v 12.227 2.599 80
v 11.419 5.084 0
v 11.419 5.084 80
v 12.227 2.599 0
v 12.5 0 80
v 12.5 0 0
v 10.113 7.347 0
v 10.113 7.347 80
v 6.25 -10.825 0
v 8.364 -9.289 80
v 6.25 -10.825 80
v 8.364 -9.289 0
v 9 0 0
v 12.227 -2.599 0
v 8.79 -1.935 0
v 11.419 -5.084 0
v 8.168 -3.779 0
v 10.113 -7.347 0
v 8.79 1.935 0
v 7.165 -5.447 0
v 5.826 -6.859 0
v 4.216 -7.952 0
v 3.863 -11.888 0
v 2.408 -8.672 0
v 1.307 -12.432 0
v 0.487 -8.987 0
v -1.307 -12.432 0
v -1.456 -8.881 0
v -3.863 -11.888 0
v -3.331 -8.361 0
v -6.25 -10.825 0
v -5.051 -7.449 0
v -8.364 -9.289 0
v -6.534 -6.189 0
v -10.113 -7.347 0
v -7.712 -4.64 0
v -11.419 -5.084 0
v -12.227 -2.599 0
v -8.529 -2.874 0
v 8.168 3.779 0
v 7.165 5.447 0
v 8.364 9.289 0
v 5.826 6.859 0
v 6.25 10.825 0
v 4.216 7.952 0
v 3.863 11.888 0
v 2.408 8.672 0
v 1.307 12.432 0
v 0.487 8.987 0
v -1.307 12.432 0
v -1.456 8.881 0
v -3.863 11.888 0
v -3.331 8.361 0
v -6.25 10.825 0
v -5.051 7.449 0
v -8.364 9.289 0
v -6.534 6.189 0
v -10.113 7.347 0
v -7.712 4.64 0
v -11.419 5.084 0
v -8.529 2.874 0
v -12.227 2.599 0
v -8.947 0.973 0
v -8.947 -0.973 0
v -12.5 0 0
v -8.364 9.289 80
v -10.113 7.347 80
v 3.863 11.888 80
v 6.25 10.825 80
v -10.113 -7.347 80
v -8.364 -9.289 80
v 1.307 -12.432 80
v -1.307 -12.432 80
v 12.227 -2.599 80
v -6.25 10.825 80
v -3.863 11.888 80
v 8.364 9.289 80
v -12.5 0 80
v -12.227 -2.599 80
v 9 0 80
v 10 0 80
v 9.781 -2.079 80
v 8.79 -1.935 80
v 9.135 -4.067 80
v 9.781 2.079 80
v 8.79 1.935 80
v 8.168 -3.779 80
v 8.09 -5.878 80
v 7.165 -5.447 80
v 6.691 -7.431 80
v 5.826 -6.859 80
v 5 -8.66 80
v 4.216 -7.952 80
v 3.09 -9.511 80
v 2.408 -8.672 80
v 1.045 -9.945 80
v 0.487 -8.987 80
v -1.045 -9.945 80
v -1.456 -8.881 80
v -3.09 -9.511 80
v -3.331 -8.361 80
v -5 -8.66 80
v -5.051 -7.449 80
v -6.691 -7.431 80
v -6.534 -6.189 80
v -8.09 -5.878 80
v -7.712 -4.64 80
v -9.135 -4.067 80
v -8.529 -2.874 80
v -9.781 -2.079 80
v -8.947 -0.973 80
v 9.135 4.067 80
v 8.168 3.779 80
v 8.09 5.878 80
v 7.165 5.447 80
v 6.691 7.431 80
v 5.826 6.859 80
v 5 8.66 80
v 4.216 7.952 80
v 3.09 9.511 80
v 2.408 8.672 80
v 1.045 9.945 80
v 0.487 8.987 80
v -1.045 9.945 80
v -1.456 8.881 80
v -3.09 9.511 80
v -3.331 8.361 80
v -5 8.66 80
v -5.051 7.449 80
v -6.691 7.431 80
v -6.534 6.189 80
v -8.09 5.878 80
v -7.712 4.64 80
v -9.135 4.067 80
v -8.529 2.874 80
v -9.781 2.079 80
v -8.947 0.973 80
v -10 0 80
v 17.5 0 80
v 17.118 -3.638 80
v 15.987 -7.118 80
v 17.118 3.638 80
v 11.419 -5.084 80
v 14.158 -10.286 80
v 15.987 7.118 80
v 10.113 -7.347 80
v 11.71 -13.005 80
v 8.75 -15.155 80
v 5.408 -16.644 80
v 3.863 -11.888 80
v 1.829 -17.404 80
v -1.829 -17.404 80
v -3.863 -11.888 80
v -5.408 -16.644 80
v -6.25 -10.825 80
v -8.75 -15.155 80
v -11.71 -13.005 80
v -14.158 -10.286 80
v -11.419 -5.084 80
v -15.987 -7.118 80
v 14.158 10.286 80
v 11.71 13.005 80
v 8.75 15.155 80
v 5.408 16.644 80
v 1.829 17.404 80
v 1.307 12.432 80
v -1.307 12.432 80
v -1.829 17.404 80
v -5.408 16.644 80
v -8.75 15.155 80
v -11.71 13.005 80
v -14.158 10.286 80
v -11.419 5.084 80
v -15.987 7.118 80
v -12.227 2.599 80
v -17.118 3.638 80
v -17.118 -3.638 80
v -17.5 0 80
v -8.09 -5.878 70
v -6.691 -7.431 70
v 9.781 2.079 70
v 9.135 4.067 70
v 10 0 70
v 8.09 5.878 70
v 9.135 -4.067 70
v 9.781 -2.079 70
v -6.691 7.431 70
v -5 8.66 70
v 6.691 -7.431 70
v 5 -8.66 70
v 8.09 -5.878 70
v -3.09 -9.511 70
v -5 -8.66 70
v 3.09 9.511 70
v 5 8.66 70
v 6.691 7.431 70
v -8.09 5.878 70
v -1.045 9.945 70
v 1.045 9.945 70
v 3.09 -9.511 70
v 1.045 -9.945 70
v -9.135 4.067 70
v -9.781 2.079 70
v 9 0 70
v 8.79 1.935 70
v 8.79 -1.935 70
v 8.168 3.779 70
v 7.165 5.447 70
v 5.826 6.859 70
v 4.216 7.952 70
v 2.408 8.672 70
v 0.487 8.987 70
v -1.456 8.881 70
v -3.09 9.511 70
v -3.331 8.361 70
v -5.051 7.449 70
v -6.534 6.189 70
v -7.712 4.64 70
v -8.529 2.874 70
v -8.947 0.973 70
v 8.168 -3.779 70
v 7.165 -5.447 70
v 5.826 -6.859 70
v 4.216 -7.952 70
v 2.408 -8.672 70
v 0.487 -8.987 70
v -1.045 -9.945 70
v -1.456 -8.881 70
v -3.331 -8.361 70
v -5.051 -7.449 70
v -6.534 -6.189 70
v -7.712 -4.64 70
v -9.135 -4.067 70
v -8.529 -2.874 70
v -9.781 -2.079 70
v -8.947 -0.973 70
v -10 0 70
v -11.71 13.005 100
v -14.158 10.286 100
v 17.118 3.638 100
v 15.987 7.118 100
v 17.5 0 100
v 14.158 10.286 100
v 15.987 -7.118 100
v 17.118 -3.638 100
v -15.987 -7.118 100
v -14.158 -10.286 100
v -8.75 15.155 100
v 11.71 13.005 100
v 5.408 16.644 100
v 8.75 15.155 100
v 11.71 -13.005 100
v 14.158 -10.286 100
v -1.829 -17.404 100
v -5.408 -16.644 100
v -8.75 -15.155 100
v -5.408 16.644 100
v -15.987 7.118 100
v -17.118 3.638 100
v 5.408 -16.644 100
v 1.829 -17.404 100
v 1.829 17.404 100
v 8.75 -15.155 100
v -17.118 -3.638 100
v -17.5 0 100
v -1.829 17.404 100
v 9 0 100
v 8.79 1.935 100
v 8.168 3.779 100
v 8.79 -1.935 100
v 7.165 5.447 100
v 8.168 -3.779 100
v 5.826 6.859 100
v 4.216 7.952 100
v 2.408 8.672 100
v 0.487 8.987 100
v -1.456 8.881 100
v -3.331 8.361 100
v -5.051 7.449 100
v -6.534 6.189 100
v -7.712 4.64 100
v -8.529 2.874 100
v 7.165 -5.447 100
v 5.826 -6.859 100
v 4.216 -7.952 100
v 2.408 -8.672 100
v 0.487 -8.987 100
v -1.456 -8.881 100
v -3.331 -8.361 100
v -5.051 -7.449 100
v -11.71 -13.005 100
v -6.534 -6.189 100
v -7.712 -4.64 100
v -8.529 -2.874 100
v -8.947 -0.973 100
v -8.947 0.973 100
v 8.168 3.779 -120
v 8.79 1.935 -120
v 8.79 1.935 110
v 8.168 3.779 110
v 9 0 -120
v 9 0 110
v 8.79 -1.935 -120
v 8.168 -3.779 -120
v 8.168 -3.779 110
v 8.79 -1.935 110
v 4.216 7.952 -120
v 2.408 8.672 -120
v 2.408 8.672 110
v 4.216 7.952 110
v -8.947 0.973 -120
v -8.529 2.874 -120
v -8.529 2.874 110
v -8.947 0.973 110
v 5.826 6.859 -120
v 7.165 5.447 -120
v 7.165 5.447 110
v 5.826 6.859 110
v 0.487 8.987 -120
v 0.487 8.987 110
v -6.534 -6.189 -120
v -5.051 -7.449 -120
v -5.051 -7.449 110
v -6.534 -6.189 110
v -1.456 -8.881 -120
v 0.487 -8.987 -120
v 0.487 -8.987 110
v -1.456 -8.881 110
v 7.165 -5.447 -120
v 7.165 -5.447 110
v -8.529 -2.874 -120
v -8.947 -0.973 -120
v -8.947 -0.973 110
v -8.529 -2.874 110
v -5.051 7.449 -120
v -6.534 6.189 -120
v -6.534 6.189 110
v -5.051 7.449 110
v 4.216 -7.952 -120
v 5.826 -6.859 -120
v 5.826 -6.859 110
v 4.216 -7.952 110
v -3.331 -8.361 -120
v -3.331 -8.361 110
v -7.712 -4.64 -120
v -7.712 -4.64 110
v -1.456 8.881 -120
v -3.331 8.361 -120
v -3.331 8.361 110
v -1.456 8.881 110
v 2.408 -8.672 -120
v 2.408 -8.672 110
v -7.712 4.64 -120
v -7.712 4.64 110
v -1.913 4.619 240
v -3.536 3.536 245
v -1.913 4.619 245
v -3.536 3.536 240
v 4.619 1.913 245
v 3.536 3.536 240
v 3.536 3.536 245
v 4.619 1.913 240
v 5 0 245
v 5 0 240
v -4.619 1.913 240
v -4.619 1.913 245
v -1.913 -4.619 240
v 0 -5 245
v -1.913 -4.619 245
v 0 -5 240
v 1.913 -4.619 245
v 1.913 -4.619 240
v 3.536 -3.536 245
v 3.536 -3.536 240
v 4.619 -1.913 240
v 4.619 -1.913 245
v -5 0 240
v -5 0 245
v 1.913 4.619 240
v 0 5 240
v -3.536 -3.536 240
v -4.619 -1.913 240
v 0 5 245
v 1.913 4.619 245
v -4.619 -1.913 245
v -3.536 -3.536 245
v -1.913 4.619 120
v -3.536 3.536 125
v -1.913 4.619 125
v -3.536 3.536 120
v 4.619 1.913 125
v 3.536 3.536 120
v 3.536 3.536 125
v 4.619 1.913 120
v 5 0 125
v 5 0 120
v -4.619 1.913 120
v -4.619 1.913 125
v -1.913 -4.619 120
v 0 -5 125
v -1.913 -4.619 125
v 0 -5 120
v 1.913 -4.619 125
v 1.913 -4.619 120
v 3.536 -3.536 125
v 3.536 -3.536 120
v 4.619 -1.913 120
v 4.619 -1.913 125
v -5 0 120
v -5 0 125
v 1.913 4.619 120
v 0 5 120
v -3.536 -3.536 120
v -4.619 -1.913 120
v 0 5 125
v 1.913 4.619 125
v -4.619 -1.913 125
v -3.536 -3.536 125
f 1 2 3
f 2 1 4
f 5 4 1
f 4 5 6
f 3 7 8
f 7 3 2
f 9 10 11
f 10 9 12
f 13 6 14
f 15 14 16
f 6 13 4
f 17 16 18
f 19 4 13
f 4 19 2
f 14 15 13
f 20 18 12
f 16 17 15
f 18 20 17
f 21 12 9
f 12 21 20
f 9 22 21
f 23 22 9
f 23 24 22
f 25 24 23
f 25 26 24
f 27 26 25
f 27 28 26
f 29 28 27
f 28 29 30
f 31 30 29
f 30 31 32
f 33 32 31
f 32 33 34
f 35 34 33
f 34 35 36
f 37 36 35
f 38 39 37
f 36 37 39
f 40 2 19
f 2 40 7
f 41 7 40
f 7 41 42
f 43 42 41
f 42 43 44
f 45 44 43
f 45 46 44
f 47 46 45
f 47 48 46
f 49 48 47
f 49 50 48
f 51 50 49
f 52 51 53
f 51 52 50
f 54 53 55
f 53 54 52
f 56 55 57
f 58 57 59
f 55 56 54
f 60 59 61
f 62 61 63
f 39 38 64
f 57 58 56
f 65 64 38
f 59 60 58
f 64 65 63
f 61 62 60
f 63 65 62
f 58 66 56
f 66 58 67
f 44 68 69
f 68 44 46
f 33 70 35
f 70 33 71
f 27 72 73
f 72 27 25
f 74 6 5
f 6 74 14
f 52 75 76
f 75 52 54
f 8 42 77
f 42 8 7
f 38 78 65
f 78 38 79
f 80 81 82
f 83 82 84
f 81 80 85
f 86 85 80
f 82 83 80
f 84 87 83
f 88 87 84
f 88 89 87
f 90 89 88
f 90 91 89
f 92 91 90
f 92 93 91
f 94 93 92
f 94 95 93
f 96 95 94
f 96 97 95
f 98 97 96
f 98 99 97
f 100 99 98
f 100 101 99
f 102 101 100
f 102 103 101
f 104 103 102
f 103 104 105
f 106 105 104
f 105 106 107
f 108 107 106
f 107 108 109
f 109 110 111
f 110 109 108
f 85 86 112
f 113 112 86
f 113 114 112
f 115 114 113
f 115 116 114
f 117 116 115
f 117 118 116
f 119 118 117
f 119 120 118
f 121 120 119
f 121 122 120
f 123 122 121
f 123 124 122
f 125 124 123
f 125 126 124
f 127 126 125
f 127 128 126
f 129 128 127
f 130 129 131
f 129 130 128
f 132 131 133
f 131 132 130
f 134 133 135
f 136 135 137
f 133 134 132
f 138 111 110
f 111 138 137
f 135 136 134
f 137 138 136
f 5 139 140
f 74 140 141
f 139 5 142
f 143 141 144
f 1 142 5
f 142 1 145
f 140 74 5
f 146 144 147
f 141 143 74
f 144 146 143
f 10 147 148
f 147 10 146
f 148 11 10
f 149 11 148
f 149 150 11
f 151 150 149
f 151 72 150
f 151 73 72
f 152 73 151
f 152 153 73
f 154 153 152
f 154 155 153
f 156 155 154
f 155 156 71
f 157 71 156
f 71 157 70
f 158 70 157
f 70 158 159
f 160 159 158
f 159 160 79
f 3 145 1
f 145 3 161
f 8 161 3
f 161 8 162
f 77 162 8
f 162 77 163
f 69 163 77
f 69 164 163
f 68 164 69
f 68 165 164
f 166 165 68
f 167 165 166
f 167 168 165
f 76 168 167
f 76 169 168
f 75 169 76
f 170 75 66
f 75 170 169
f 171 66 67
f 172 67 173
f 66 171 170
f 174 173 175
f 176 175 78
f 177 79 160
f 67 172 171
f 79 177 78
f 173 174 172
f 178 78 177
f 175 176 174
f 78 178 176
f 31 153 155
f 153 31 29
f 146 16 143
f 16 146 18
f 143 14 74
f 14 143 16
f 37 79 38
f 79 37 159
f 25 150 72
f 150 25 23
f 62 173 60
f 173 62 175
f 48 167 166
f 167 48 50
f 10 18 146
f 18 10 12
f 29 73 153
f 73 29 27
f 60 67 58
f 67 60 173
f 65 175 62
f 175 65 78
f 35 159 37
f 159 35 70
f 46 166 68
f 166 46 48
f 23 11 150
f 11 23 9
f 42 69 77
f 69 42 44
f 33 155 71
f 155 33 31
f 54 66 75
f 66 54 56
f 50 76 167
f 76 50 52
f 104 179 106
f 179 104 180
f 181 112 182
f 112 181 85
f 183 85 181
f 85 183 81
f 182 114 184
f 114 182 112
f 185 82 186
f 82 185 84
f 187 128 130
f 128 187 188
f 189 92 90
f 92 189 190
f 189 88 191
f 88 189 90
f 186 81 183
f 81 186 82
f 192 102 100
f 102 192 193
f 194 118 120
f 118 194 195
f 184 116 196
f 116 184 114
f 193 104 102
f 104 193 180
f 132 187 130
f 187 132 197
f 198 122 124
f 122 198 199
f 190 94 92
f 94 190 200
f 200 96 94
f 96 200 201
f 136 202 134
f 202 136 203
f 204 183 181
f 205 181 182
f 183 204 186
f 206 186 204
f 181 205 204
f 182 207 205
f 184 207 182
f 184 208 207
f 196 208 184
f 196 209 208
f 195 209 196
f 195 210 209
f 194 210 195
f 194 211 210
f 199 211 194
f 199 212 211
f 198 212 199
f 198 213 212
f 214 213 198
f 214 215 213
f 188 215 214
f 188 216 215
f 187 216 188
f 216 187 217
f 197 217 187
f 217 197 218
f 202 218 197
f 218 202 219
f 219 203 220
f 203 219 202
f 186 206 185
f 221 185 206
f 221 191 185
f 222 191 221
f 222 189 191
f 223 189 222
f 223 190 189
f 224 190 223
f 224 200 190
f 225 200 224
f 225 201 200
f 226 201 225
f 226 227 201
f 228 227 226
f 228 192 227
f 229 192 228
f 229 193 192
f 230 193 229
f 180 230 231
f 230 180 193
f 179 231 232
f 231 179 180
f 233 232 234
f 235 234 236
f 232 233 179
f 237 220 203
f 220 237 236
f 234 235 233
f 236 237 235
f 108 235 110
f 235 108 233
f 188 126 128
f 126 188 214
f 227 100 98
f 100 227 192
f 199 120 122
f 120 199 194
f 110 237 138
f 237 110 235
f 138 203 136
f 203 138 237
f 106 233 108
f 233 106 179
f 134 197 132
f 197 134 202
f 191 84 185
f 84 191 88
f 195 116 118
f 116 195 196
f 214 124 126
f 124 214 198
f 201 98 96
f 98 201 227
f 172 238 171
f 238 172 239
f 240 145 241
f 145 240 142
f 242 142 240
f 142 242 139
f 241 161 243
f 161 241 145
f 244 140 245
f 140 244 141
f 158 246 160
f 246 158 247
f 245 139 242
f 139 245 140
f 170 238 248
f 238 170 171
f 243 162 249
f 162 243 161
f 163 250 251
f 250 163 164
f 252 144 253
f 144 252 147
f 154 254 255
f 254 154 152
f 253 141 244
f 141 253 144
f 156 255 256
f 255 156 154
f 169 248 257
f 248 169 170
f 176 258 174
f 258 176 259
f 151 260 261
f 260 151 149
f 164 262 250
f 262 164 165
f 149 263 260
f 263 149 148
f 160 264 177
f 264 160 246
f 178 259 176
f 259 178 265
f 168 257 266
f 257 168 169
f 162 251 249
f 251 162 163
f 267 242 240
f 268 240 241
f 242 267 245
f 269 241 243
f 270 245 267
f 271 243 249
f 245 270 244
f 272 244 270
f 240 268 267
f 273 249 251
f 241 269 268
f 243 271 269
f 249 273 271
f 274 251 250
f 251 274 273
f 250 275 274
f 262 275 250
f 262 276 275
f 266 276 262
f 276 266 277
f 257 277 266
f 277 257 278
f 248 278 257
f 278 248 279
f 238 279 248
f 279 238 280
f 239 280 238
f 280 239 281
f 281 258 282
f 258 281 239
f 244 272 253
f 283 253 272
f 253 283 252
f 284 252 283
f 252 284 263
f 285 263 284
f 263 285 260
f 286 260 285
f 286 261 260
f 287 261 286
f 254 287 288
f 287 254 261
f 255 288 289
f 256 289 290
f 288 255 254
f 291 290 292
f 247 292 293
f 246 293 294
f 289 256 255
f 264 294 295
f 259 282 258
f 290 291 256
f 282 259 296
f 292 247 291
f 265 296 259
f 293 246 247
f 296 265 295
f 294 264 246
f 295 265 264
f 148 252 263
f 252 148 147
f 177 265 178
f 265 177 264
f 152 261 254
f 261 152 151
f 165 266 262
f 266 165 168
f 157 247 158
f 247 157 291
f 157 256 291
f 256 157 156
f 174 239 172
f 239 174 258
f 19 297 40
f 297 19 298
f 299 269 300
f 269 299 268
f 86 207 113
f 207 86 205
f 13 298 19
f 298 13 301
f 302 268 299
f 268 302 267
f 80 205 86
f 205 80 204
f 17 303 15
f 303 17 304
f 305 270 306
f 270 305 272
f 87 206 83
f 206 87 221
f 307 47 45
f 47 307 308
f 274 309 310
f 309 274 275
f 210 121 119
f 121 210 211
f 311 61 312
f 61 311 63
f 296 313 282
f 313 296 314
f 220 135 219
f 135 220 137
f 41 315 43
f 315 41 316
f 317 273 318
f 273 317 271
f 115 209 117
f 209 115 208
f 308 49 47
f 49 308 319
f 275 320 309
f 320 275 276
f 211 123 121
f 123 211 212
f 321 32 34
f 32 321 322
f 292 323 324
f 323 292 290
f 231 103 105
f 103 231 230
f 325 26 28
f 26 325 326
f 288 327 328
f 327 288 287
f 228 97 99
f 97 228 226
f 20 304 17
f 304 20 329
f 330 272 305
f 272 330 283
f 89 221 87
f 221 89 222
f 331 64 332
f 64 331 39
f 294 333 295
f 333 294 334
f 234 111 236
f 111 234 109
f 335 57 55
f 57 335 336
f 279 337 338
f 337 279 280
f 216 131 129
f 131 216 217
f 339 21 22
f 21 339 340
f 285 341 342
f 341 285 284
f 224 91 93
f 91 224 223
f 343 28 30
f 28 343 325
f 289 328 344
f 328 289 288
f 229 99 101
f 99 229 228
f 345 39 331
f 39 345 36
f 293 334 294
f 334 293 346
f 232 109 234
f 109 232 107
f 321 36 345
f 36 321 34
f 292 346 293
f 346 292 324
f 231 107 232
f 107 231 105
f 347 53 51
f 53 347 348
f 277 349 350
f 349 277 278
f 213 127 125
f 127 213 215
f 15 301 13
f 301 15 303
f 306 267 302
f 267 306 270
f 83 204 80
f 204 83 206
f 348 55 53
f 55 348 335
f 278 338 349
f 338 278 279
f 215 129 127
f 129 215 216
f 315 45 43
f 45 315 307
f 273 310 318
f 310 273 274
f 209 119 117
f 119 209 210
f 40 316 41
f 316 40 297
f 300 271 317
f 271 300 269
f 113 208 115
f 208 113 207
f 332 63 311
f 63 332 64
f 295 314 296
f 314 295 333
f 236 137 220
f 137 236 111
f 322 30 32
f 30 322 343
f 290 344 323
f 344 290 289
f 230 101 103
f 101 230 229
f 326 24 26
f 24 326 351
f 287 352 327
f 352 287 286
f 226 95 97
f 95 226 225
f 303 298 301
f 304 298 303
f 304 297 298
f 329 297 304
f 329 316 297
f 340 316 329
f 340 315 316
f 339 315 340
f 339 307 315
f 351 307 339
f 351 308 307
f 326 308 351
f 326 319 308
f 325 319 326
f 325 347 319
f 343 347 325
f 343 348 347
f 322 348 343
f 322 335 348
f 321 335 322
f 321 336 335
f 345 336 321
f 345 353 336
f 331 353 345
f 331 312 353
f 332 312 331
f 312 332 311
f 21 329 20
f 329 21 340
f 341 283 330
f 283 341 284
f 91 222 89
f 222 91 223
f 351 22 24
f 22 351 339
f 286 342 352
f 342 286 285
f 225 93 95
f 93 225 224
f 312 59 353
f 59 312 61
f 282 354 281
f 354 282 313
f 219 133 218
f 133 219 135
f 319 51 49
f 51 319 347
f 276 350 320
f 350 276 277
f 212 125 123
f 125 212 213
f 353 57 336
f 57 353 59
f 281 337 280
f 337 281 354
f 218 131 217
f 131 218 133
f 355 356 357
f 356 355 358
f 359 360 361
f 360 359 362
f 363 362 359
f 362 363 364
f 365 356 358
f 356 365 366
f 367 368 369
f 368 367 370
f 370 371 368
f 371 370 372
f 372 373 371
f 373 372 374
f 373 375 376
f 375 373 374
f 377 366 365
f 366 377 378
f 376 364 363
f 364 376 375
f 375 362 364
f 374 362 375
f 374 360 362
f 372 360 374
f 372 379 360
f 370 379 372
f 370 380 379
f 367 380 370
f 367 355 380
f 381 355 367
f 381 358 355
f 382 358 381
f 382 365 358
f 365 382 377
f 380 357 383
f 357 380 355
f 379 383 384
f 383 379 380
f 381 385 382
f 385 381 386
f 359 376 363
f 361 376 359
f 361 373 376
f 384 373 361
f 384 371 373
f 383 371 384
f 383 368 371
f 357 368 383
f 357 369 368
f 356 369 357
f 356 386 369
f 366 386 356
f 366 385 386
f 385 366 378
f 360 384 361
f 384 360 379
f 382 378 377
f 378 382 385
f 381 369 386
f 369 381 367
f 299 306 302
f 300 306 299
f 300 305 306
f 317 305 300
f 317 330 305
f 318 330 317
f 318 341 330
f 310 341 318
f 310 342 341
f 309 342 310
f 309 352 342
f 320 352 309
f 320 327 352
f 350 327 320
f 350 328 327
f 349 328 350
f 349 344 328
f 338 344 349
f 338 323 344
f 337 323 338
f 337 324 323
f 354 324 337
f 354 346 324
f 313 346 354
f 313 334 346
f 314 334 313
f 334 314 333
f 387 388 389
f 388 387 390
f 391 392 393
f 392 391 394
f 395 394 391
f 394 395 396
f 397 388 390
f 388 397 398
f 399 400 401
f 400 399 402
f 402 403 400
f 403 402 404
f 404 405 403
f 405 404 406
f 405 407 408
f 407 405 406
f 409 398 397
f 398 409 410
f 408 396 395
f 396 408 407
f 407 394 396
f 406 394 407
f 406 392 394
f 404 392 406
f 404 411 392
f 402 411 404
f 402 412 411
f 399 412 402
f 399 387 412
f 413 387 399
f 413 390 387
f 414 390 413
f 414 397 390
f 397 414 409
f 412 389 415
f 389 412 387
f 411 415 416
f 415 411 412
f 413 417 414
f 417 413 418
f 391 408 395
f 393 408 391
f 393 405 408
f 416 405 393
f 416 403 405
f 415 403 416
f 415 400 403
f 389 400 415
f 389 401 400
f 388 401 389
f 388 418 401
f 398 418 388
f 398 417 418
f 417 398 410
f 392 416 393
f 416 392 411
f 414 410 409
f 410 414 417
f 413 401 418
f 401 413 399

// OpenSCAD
// Screwdriver Model in OpenSCAD

// --- Parameters ---
handle_length = 80;
handle_diameter = 25;
handle_thickness = 10;
head_diameter = 35;
head_length = 20;
shank_diameter = 18;
shank_length = 120;
shaft_taper_angle = 10; // Degrees

module handle() {
  difference() {
    cylinder(h = handle_length, d = handle_diameter);
    translate([0, 0, handle_length - handle_thickness])
    cylinder(h = handle_thickness, d = handle_diameter - 5);
  }
}

module head() {
  difference() {
    cylinder(h = head_length, d = head_diameter);
    translate([0, 0, head_length - 5])
    cylinder(h = 5, d = 10);
  }
}

module shank() {
  cylinder(h = shank_length, d = shank_diameter);
}

// --- Assembly ---

// Main Body
translate([0, 0, 0]) {
  handle();
}

// Head
translate([0, 0, handle_length]) {
  head();
}

// Shaft (Simplified) -  Just a cylinder for demonstration
translate([0, 0, -shank_length]) {
  cylinder(h = shank_length, d = shank_diameter);
}

translate([0, 0, -shank_length + shank_length]) {
  translate([0, 0, -shank_length + shank_length])
  cylinder(h = shank_length - 10, d = shank_diameter);
}

translate([0, 0, -shank_length + shank_length + shank_length]) {
  translate([0, 0, -shank_length + shank_length]) {
    translate([0, 0, -shank_length + shank_length])
    cylinder(h = 5, d = shaft_taper_angle);
  }
}

translate([0, 0, -shank_length + shank_length + shank_length]) {
  translate([0, 0, -shank_length + shank_length]) {
    translate([0, 0, -shank_length + shank_length]) {
        cylinder(h = 5, d = shaft_taper_angle);
    }
  }
}

// Combine all parts
difference() {
  union() {
    translate([0, 0, 0]) {
        handle();
    }
    translate([0, 0, handle_length]) {
        head();
    }
    translate([0, 0, shank_length]) {
        translate([0, 0, -shank_length]) {
            translate([0, 0, -shank_length]) {
                translate([0, 0, -shank_length + shank_length]) {
                    cylinder(h = shank_length, d = shank_diameter);
                }
            }
        }
    }
    translate([0, 0, shank_length + shank_length]) {
        translate([0, 0, -shank_length + shank_length]) {
            translate([0, 0, -shank_length + shank_length]) {
                translate([0, 0, -shank_length + shank_length]) {
                    cylinder(h = 5, d = shaft_taper_angle);
                }
            }
        }
    }
  }
  
  translate([0, 0, -shank_length]) {
    translate([0, 0, -shank_length]) {
        translate([0, 0, -shank_length + shank_length]) {
            cylinder(h = 5, d = shaft_taper_angle);
        }
    }
  }
  translate([0, 0, -shank_length + shank_length + shank_length]) {
    translate([0, 0, -shank_length + shank_length]) {
        translate([0, 0, -shank_length + shank_length]) {
            translate([0, 0, -shank_length + shank_length]) {
                cylinder(h = 5, d = shaft_taper_angle);
            }
        }
    }
  }
}
